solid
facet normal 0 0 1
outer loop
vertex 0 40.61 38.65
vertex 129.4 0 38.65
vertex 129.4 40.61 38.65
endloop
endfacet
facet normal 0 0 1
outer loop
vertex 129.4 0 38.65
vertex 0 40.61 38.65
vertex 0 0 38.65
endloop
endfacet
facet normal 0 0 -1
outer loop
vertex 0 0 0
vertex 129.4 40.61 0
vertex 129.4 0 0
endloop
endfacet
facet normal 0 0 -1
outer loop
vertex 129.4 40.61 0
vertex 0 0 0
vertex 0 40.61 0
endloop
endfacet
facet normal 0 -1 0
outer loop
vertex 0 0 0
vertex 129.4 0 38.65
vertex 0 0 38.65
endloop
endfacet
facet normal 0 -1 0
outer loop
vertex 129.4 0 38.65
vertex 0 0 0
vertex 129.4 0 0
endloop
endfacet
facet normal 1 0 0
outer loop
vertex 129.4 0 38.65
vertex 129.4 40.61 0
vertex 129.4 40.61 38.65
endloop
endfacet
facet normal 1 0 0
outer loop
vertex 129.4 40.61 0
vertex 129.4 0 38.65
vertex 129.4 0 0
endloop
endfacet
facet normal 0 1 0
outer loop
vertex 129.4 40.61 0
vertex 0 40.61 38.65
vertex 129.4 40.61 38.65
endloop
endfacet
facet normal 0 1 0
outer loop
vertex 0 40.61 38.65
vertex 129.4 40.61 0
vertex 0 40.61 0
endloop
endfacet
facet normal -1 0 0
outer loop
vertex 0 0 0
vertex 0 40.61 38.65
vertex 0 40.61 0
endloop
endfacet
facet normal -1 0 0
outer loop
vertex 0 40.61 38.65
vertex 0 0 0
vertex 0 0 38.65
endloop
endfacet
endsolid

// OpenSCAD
			       //improving rendering speed.
draft = true;   // sets rendering quality to draft.
$fs = draft ? 5 : 0.5;
$fa = 10;


module motor_imitation(draft){

cube([width_of_accumulator, depth_of_accumulator, height_of_accumulator - sink_of_accumulator]);

}




motor_imitation(draft);

include <../parameters.scad>
